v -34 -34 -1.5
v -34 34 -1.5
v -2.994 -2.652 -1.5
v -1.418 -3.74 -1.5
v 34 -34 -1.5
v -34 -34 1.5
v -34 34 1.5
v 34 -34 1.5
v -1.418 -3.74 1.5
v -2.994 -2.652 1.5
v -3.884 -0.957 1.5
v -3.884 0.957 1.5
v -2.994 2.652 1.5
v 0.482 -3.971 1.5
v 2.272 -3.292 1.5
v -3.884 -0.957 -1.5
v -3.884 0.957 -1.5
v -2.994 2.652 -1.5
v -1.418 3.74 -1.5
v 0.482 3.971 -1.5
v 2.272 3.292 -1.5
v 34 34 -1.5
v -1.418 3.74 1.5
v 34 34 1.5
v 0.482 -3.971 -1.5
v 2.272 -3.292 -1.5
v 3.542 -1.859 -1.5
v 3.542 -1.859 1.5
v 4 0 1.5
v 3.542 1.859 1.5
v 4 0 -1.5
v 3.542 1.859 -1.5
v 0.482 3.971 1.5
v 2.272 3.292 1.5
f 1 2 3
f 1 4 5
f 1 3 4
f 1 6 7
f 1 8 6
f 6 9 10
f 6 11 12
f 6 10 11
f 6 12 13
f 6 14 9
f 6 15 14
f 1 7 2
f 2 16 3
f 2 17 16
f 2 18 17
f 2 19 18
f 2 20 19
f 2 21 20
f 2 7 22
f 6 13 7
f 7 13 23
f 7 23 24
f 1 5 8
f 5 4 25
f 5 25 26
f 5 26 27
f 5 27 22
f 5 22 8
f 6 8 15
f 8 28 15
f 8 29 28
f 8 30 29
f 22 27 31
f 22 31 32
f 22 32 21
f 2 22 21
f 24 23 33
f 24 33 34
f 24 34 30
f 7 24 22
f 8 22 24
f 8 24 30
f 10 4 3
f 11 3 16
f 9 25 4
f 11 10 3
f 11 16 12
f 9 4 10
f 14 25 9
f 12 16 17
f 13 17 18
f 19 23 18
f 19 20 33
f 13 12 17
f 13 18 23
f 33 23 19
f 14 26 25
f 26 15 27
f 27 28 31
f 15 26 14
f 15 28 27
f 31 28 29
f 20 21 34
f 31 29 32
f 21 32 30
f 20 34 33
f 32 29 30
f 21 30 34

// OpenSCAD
diameter = 75;

cutoutDepth = 0.5;

chamfer = 2;

$cutoutSize = diameter - 3 * chamfer;

difference(){
    cube([$cutoutSize-1,$cutoutSize-1, 3], center = true);
    
    cylinder(h = 4, r = 4, center = true);
}
